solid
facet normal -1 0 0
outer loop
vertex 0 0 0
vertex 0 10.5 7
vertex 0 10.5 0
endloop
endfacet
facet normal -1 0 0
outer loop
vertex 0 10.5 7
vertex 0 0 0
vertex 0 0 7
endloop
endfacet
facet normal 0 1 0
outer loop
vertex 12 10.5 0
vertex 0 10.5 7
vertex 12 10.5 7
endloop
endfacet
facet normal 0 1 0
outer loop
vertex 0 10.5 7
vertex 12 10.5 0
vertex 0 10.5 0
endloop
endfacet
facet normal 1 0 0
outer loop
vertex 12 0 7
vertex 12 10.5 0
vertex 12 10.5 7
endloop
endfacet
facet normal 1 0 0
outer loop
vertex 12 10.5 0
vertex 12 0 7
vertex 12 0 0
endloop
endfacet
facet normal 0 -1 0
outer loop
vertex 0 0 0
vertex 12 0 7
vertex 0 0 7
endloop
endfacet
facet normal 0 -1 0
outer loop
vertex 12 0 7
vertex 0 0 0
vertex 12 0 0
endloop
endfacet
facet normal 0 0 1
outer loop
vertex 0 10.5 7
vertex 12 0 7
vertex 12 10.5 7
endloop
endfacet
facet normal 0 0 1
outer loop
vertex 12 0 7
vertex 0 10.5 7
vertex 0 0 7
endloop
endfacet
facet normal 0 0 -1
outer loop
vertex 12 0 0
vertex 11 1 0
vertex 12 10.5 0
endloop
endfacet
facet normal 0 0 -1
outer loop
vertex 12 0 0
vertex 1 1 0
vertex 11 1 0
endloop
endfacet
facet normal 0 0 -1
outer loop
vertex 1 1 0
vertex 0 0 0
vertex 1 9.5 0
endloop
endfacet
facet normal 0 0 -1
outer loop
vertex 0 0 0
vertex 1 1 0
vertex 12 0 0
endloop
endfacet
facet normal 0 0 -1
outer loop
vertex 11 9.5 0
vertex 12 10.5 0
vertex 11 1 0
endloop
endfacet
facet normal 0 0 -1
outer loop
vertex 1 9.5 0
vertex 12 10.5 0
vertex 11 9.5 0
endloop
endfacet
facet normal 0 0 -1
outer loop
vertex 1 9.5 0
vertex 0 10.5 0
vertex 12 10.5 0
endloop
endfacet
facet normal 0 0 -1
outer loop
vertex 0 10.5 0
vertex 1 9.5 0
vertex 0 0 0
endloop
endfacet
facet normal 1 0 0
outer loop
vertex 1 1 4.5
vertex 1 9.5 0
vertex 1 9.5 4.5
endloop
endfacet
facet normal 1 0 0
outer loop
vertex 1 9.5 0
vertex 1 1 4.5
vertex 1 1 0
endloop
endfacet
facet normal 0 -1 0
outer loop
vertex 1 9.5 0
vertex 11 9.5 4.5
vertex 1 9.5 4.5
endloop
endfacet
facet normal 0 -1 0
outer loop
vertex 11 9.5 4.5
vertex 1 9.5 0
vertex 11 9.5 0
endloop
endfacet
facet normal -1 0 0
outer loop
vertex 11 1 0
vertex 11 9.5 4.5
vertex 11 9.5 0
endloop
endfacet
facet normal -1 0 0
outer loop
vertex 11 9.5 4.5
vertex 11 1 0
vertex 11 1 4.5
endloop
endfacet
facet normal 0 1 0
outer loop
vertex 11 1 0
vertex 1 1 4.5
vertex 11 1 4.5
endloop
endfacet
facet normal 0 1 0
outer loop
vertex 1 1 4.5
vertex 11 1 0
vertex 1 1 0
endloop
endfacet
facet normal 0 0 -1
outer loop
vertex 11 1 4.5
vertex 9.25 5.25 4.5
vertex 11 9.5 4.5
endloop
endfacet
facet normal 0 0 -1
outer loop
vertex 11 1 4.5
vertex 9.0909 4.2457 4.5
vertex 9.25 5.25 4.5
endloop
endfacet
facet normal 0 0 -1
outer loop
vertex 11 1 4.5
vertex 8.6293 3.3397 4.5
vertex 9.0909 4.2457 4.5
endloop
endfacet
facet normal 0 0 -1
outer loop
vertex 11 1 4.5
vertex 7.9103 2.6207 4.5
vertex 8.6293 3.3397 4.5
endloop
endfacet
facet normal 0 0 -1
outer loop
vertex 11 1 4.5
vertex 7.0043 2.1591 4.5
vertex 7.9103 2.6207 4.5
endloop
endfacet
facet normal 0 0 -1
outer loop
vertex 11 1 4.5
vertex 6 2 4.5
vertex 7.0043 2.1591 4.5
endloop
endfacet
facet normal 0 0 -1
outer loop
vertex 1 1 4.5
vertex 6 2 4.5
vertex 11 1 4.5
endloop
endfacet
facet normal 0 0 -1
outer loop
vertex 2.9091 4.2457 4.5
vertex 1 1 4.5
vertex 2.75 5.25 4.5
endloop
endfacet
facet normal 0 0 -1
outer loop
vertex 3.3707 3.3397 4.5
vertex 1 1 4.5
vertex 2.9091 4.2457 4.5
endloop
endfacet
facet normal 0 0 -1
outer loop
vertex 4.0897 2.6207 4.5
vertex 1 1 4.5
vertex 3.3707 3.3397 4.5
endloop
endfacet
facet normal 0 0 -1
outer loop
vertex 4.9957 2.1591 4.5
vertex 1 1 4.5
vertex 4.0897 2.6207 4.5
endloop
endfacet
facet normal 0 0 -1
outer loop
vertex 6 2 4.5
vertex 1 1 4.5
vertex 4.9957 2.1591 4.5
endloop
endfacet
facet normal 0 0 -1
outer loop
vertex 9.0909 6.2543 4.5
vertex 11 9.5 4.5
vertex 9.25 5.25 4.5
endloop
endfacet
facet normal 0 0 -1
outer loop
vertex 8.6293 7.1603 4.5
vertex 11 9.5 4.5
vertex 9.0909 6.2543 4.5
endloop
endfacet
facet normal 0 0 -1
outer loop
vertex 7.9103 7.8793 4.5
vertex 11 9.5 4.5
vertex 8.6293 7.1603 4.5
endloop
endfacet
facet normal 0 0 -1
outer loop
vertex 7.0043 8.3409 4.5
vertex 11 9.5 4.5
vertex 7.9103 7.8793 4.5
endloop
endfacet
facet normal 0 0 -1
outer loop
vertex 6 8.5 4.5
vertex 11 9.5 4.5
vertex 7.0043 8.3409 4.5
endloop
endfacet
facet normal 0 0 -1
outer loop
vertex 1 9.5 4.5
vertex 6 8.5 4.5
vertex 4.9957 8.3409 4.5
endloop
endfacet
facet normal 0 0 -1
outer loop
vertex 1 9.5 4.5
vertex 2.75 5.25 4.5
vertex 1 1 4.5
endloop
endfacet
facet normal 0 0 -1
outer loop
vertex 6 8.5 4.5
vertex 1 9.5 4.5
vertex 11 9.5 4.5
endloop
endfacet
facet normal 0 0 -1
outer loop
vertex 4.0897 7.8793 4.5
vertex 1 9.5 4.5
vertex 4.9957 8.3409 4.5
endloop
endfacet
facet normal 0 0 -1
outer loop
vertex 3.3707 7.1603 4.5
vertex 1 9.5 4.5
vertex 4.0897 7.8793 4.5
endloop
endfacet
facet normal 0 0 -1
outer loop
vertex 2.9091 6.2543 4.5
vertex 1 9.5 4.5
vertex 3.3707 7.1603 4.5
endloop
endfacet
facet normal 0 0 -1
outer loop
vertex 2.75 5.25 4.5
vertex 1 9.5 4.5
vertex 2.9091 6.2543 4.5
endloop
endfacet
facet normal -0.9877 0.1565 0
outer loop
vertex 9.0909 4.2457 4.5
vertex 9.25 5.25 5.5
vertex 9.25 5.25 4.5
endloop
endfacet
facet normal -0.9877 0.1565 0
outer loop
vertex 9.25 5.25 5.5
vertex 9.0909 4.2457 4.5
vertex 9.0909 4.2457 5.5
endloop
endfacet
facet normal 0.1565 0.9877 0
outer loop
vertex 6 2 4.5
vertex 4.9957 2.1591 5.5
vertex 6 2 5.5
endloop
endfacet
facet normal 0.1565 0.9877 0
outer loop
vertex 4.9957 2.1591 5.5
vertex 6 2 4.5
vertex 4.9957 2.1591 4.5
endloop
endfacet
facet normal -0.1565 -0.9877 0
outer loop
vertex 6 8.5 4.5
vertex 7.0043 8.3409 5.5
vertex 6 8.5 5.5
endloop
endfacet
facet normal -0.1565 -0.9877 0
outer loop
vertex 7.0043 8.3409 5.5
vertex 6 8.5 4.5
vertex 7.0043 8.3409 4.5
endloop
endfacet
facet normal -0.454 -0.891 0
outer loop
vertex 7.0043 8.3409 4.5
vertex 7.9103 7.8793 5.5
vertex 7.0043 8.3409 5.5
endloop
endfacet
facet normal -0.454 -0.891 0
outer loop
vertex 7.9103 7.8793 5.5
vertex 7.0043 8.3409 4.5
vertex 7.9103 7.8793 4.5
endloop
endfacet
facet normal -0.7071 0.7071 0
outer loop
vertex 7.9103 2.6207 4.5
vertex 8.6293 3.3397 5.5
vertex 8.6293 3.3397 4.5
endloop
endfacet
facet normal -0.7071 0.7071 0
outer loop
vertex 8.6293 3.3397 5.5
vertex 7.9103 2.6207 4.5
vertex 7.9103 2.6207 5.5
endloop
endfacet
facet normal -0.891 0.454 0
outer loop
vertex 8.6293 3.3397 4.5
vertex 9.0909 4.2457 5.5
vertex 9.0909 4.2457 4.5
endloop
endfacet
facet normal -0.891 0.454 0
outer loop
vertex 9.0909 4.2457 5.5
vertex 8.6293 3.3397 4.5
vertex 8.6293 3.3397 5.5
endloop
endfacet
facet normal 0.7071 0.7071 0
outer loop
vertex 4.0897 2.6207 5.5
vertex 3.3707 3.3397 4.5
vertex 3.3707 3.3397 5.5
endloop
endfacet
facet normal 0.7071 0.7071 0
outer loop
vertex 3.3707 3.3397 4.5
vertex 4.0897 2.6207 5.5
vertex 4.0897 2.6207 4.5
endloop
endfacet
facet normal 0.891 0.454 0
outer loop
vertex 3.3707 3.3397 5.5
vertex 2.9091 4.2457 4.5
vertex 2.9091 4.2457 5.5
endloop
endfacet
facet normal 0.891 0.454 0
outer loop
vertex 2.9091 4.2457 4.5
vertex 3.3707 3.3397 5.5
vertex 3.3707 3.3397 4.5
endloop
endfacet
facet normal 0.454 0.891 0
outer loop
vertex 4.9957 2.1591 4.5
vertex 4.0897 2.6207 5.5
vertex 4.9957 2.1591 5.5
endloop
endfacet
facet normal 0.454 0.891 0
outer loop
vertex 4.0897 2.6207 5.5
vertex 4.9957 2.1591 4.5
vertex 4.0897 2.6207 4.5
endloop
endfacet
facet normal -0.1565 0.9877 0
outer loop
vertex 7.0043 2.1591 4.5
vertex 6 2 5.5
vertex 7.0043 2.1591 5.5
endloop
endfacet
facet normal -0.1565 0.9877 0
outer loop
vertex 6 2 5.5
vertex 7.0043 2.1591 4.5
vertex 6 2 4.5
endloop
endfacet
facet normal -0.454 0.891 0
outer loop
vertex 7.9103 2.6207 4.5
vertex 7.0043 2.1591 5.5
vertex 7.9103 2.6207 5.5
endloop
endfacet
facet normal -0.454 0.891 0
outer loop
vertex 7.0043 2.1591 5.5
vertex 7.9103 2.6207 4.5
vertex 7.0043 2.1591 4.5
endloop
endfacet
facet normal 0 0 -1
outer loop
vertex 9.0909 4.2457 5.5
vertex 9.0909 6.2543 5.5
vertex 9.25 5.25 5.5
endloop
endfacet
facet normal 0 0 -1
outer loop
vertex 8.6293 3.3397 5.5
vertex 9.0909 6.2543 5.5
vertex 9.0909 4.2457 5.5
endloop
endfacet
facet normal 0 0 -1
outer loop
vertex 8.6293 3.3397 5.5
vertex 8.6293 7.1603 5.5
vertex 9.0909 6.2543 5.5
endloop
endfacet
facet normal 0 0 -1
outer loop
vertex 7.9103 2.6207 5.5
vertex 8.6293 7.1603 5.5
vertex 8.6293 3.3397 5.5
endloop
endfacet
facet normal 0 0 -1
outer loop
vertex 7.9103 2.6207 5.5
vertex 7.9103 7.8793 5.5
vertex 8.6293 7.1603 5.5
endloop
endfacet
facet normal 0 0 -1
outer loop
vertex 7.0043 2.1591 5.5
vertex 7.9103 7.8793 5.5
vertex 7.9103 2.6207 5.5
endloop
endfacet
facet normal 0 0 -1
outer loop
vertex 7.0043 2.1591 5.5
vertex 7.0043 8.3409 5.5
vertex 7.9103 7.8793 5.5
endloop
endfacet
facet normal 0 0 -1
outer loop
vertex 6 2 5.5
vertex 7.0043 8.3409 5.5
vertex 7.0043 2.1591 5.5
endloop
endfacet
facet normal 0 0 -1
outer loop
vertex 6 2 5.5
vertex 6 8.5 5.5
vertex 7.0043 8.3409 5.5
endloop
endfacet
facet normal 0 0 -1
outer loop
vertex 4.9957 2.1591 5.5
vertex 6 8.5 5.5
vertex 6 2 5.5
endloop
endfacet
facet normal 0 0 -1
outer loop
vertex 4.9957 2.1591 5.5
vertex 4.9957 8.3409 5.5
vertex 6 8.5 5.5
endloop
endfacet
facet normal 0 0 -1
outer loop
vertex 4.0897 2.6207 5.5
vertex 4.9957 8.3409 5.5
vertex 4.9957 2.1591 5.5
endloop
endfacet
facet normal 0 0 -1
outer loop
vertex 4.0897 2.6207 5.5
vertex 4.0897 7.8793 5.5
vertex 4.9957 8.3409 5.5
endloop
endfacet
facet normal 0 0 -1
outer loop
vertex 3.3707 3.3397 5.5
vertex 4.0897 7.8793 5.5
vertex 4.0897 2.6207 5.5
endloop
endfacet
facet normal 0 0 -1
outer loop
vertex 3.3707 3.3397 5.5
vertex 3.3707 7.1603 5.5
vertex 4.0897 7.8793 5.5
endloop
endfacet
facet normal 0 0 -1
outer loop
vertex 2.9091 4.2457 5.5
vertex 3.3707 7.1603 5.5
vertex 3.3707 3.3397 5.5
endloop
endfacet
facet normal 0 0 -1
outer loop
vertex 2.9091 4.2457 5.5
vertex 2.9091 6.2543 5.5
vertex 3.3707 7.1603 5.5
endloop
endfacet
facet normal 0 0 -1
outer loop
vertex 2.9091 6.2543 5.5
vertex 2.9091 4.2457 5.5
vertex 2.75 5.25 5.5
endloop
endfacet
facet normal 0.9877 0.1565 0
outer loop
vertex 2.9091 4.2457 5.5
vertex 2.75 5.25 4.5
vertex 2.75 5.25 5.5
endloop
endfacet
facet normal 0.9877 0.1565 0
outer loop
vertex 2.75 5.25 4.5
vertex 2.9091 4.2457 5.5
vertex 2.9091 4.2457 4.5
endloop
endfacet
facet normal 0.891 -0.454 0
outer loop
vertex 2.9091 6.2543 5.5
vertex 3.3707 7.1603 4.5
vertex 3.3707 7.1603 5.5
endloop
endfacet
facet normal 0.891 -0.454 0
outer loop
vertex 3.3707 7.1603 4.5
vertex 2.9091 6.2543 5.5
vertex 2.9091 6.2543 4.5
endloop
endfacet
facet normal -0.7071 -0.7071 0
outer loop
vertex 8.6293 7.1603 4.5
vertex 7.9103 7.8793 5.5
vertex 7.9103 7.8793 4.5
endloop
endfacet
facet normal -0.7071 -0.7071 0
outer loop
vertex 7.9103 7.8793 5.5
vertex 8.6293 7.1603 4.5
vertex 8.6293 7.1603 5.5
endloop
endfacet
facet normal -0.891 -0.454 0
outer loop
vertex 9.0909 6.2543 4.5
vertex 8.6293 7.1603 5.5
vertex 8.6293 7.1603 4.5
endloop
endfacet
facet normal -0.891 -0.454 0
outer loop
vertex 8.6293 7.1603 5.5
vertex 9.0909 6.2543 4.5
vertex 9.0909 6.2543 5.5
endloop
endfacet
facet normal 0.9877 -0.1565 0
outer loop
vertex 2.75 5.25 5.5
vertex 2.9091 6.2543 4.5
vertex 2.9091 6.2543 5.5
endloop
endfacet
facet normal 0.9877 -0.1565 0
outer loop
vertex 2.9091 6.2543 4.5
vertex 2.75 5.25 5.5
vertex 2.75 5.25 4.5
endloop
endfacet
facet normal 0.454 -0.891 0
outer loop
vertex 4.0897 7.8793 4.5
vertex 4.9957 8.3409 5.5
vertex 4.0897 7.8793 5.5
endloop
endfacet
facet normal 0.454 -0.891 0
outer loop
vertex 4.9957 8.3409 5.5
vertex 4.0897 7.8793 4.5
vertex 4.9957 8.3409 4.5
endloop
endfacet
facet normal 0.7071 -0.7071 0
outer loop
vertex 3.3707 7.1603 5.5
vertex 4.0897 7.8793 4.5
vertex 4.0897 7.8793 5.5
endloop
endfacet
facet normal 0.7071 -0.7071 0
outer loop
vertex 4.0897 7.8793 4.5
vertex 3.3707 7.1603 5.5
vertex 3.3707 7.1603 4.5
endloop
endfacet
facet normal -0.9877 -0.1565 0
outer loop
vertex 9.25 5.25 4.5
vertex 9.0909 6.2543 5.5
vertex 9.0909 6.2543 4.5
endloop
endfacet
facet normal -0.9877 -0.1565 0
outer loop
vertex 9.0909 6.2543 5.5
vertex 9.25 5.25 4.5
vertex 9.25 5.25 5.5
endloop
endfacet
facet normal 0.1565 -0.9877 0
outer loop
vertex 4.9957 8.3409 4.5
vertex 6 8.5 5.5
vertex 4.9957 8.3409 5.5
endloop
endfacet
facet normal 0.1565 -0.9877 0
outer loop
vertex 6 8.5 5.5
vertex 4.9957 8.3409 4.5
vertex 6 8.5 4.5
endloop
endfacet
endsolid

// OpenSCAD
module button_cap() {
    difference() {
        cube([12,7,10.5]);
        
        translate([1,2.5,1])
        cube([10,5.5,8.5]);
        
        translate([6,1.5,5.25])
        rotate([-90,0,0])
        cylinder(h=2,r=3.25,$fn=20);
    }
}

rotate([-90,0,0])
translate([0,-7,0])
button_cap();
